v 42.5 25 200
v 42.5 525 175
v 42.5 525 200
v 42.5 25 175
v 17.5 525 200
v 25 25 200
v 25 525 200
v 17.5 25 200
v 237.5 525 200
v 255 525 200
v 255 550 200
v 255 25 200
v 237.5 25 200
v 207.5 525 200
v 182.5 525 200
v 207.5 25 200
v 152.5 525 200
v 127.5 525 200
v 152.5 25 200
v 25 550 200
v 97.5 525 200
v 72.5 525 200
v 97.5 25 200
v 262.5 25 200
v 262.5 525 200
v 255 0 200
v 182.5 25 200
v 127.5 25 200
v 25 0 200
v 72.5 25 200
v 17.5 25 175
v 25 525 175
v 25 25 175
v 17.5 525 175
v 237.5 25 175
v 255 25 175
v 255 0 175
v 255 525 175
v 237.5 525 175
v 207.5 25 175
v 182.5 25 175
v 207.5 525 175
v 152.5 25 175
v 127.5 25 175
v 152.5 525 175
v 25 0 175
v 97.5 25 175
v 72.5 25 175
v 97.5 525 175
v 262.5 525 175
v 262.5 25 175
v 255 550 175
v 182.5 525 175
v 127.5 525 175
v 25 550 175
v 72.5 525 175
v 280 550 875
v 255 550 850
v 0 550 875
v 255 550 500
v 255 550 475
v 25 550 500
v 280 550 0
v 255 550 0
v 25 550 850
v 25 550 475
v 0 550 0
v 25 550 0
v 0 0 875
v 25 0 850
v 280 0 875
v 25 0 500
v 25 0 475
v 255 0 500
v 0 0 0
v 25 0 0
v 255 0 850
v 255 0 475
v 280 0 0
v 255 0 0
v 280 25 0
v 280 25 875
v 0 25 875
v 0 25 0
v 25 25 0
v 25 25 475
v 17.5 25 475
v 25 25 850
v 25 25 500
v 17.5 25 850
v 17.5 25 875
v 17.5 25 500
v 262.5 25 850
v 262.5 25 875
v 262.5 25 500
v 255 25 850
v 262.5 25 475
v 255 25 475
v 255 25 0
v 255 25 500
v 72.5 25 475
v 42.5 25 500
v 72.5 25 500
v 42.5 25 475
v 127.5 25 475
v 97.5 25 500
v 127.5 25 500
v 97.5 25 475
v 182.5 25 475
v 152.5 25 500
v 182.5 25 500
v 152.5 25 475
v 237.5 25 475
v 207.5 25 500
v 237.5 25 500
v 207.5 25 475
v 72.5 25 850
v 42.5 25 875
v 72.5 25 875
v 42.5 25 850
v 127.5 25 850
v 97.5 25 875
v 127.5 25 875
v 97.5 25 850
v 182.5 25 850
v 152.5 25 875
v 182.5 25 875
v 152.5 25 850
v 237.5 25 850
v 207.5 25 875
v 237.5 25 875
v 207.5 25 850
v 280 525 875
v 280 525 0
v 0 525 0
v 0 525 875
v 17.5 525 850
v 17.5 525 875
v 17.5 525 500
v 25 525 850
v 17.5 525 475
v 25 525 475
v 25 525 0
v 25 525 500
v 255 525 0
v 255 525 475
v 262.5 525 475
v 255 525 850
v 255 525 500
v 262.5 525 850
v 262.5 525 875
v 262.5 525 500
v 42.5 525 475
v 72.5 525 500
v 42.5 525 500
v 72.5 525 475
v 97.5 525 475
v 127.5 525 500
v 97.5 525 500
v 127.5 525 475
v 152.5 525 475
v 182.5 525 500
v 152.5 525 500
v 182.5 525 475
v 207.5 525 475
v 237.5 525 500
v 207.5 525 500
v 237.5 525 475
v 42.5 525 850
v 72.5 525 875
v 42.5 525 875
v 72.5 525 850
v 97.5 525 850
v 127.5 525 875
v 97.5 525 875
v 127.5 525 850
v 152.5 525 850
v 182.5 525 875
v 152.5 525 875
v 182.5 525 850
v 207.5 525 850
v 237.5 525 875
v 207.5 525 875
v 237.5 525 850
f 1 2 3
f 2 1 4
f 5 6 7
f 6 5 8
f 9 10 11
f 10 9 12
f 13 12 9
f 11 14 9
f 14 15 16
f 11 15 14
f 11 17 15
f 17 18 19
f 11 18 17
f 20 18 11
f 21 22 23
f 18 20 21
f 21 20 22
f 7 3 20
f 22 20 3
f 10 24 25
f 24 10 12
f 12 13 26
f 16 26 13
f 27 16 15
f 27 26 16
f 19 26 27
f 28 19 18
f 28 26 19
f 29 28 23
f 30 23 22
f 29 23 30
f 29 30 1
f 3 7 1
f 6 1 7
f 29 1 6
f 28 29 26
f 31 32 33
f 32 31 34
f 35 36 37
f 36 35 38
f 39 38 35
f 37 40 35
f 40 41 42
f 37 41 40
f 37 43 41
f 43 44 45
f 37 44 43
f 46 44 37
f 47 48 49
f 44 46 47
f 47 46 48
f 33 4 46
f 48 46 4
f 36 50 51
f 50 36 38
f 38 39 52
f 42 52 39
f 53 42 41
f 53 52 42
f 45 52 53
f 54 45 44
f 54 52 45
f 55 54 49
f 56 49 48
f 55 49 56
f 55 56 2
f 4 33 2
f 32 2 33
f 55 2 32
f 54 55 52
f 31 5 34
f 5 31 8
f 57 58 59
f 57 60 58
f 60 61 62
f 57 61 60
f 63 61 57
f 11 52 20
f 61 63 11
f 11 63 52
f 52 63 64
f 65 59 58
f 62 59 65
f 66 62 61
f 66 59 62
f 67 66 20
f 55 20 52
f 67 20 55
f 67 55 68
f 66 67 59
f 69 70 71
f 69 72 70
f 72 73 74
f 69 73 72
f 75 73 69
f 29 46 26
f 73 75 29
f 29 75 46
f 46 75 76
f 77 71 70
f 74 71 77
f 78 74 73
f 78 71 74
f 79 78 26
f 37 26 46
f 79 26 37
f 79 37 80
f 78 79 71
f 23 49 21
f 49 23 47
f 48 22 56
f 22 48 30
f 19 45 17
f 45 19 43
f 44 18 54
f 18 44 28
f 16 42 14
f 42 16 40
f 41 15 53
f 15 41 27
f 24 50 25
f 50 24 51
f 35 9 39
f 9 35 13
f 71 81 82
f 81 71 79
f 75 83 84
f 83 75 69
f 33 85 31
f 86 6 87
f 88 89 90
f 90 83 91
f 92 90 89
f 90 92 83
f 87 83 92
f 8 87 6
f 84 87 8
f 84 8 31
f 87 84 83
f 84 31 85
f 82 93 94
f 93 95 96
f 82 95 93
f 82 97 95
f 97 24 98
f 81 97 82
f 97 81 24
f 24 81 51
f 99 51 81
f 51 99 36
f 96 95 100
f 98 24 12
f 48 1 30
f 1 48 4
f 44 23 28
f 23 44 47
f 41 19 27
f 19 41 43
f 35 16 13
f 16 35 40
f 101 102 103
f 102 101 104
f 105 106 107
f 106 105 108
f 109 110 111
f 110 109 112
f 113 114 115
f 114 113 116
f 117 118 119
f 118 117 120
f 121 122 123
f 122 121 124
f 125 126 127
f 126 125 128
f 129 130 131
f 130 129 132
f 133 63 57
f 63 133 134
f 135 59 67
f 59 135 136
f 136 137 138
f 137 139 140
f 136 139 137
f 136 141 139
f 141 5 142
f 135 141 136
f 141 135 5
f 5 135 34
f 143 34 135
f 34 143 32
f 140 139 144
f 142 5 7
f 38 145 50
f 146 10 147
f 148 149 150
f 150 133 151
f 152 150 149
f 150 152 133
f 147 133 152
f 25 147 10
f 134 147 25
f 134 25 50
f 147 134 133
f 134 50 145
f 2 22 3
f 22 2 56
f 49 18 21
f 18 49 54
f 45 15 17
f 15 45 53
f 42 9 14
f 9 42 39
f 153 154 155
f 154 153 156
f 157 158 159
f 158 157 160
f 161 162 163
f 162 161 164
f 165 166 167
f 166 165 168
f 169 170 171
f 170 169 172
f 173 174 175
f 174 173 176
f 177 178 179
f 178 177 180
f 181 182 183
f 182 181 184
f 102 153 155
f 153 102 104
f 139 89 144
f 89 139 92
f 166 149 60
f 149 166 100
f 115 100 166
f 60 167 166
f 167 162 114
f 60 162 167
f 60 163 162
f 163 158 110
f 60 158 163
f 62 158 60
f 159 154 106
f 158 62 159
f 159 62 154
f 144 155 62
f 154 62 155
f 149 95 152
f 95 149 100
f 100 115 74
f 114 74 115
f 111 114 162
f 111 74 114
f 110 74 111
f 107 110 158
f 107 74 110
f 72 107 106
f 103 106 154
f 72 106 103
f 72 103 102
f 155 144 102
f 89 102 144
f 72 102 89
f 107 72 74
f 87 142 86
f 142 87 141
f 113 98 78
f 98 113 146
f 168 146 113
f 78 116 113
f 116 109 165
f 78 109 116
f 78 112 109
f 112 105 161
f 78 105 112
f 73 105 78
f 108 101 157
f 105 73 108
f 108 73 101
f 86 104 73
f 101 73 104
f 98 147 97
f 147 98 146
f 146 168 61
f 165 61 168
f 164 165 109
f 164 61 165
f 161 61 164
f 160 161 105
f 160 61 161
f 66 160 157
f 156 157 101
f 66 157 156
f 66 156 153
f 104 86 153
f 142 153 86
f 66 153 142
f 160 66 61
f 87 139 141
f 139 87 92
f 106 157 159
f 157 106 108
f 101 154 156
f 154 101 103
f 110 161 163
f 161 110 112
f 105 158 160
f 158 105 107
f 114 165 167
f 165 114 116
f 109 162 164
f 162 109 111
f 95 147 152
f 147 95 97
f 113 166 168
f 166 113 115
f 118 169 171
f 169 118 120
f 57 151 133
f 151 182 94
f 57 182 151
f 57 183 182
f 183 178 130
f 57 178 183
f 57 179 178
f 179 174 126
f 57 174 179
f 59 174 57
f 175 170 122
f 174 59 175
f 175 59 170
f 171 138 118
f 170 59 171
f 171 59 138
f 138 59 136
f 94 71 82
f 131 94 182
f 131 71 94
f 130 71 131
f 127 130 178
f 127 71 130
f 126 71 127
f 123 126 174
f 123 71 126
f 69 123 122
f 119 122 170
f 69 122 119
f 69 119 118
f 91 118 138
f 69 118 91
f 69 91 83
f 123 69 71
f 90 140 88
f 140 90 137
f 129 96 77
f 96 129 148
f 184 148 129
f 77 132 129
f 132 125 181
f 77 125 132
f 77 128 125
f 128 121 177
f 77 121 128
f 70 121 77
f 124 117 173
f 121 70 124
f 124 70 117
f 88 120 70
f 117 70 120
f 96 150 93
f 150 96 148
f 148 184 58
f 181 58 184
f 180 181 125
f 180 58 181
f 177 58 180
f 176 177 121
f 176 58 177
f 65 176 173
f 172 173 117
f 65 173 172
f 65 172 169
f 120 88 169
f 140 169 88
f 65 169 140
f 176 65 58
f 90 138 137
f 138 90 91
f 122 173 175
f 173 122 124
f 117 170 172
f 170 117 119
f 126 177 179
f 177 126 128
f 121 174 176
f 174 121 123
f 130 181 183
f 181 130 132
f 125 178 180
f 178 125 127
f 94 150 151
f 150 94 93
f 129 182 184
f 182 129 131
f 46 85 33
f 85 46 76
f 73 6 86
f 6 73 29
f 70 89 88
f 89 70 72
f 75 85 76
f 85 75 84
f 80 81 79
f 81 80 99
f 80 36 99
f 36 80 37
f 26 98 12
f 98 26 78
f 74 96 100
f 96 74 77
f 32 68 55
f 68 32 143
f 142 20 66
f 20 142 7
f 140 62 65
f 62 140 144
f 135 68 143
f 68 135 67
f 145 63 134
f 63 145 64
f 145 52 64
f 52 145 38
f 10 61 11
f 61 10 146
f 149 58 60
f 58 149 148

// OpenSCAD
// ============================================================
//  3D model of a 3-tier open metal-frame rack / stand
//  Reconstructed from the hand drawing.
//
//  All dimensions are in millimetres.
//
//  Footprint (from drawing):
//      width  (front)  = 280 mm  ("28 см, не больше")
//      depth  (side)   = 550 mm  ("55 см")
//
//  Vertical layout (heights measured from the floor, from drawing):
//      bottom shelf    = 200 mm  ("20")
//      middle shelf    = +300 mm -> 500 mm   ("30")
//      top shelf       = +375 mm -> 875 mm   ("35-40", mid value used)
// ============================================================

/* [Footprint] */
width  = 280;   // X - front width  (max 280)
depth  = 550;   // Y - side depth

/* [Shelf heights from floor] */
h1 = 200;       // bottom shelf  (top surface)
gap2 = 300;     // distance to middle shelf
gap3 = 375;     // distance to top shelf (35-40 cm -> 37.5 cm)

/* [Construction] */
tube = 25;            // square tube cross-section (25 x 25 mm)
slat_gap = 30;        // exact clear gap between shelf slats (mm)
slats_lengthwise = true;  // true: slats run along the 550 mm length (full width of the shelf)

// Derived heights (top surface of each shelf rail)
h2 = h1 + gap2;          // 500
h3 = h2 + gap3;          // 875
top_height = h3;         // legs run from floor to the top shelf

$fn = 24;

// ---- helper: a single vertical leg -------------------------
module leg(x, y) {
    translate([x, y, 0])
        cube([tube, tube, top_height]);
}

// ---- slat layout: exact clear gap = slat_gap, slats centred over the span ----
function slat_n(span)      = max(2, floor((span + slat_gap) / (slat_gap + tube)));
function slat_margin(span, n) = (span - (n * tube + (n - 1) * slat_gap)) / 2;  // equal end margins
pitch = tube + slat_gap;  // slat centre-to-centre

// ---- helper: one shelf made of slatted tube at height h ----
//  h = z of the TOP surface of the shelf (rails + slats are flush)
//  Slats are the same 25x25 tube, spaced with a clear gap so light reaches
//  the shelves below. Slats run along the 550 mm length so flower pots rest
//  on continuous rails, supported by cross-rails underneath.
module shelf_frame(h) {
    z = h - tube;   // bottom of the rails / slats

    if (slats_lengthwise) {
        // Two end rails run along X (the 280 mm width) at the front and back.
        // They only tie the legs together and cap the slat ends - no grid.
        translate([0, 0,            z]) cube([width, tube, tube]);
        translate([0, depth - tube, z]) cube([width, tube, tube]);

        // Slats run along Y (the full 550 mm length), spread across the width
        // with an exact clear gap of slat_gap.
        n = slat_n(width);
        m = slat_margin(width, n);
        for (i = [0 : n - 1])
            translate([m + i * pitch, 0, z]) cube([tube, depth, tube]);
    } else {
        // Slats run across the 280 mm width, spread along the 550 mm depth.
        translate([0,            0, z]) cube([tube, depth, tube]);
        translate([width - tube, 0, z]) cube([tube, depth, tube]);
        n = slat_n(depth);
        m = slat_margin(depth, n);
        for (i = [0 : n - 1])
            translate([tube, m + i * pitch, z]) cube([width - 2 * tube, tube, tube]);
    }
}

// ============================================================
//  Assembly
// ============================================================
module rack() {
    color("SlateGray") {
        // 4 corner legs
        leg(0,            0);
        leg(width - tube, 0);
        leg(0,            depth - tube);
        leg(width - tube, depth - tube);

        // 3 shelf frames
        shelf_frame(h1);
        shelf_frame(h2);
        shelf_frame(h3);
    }
}

rack();
